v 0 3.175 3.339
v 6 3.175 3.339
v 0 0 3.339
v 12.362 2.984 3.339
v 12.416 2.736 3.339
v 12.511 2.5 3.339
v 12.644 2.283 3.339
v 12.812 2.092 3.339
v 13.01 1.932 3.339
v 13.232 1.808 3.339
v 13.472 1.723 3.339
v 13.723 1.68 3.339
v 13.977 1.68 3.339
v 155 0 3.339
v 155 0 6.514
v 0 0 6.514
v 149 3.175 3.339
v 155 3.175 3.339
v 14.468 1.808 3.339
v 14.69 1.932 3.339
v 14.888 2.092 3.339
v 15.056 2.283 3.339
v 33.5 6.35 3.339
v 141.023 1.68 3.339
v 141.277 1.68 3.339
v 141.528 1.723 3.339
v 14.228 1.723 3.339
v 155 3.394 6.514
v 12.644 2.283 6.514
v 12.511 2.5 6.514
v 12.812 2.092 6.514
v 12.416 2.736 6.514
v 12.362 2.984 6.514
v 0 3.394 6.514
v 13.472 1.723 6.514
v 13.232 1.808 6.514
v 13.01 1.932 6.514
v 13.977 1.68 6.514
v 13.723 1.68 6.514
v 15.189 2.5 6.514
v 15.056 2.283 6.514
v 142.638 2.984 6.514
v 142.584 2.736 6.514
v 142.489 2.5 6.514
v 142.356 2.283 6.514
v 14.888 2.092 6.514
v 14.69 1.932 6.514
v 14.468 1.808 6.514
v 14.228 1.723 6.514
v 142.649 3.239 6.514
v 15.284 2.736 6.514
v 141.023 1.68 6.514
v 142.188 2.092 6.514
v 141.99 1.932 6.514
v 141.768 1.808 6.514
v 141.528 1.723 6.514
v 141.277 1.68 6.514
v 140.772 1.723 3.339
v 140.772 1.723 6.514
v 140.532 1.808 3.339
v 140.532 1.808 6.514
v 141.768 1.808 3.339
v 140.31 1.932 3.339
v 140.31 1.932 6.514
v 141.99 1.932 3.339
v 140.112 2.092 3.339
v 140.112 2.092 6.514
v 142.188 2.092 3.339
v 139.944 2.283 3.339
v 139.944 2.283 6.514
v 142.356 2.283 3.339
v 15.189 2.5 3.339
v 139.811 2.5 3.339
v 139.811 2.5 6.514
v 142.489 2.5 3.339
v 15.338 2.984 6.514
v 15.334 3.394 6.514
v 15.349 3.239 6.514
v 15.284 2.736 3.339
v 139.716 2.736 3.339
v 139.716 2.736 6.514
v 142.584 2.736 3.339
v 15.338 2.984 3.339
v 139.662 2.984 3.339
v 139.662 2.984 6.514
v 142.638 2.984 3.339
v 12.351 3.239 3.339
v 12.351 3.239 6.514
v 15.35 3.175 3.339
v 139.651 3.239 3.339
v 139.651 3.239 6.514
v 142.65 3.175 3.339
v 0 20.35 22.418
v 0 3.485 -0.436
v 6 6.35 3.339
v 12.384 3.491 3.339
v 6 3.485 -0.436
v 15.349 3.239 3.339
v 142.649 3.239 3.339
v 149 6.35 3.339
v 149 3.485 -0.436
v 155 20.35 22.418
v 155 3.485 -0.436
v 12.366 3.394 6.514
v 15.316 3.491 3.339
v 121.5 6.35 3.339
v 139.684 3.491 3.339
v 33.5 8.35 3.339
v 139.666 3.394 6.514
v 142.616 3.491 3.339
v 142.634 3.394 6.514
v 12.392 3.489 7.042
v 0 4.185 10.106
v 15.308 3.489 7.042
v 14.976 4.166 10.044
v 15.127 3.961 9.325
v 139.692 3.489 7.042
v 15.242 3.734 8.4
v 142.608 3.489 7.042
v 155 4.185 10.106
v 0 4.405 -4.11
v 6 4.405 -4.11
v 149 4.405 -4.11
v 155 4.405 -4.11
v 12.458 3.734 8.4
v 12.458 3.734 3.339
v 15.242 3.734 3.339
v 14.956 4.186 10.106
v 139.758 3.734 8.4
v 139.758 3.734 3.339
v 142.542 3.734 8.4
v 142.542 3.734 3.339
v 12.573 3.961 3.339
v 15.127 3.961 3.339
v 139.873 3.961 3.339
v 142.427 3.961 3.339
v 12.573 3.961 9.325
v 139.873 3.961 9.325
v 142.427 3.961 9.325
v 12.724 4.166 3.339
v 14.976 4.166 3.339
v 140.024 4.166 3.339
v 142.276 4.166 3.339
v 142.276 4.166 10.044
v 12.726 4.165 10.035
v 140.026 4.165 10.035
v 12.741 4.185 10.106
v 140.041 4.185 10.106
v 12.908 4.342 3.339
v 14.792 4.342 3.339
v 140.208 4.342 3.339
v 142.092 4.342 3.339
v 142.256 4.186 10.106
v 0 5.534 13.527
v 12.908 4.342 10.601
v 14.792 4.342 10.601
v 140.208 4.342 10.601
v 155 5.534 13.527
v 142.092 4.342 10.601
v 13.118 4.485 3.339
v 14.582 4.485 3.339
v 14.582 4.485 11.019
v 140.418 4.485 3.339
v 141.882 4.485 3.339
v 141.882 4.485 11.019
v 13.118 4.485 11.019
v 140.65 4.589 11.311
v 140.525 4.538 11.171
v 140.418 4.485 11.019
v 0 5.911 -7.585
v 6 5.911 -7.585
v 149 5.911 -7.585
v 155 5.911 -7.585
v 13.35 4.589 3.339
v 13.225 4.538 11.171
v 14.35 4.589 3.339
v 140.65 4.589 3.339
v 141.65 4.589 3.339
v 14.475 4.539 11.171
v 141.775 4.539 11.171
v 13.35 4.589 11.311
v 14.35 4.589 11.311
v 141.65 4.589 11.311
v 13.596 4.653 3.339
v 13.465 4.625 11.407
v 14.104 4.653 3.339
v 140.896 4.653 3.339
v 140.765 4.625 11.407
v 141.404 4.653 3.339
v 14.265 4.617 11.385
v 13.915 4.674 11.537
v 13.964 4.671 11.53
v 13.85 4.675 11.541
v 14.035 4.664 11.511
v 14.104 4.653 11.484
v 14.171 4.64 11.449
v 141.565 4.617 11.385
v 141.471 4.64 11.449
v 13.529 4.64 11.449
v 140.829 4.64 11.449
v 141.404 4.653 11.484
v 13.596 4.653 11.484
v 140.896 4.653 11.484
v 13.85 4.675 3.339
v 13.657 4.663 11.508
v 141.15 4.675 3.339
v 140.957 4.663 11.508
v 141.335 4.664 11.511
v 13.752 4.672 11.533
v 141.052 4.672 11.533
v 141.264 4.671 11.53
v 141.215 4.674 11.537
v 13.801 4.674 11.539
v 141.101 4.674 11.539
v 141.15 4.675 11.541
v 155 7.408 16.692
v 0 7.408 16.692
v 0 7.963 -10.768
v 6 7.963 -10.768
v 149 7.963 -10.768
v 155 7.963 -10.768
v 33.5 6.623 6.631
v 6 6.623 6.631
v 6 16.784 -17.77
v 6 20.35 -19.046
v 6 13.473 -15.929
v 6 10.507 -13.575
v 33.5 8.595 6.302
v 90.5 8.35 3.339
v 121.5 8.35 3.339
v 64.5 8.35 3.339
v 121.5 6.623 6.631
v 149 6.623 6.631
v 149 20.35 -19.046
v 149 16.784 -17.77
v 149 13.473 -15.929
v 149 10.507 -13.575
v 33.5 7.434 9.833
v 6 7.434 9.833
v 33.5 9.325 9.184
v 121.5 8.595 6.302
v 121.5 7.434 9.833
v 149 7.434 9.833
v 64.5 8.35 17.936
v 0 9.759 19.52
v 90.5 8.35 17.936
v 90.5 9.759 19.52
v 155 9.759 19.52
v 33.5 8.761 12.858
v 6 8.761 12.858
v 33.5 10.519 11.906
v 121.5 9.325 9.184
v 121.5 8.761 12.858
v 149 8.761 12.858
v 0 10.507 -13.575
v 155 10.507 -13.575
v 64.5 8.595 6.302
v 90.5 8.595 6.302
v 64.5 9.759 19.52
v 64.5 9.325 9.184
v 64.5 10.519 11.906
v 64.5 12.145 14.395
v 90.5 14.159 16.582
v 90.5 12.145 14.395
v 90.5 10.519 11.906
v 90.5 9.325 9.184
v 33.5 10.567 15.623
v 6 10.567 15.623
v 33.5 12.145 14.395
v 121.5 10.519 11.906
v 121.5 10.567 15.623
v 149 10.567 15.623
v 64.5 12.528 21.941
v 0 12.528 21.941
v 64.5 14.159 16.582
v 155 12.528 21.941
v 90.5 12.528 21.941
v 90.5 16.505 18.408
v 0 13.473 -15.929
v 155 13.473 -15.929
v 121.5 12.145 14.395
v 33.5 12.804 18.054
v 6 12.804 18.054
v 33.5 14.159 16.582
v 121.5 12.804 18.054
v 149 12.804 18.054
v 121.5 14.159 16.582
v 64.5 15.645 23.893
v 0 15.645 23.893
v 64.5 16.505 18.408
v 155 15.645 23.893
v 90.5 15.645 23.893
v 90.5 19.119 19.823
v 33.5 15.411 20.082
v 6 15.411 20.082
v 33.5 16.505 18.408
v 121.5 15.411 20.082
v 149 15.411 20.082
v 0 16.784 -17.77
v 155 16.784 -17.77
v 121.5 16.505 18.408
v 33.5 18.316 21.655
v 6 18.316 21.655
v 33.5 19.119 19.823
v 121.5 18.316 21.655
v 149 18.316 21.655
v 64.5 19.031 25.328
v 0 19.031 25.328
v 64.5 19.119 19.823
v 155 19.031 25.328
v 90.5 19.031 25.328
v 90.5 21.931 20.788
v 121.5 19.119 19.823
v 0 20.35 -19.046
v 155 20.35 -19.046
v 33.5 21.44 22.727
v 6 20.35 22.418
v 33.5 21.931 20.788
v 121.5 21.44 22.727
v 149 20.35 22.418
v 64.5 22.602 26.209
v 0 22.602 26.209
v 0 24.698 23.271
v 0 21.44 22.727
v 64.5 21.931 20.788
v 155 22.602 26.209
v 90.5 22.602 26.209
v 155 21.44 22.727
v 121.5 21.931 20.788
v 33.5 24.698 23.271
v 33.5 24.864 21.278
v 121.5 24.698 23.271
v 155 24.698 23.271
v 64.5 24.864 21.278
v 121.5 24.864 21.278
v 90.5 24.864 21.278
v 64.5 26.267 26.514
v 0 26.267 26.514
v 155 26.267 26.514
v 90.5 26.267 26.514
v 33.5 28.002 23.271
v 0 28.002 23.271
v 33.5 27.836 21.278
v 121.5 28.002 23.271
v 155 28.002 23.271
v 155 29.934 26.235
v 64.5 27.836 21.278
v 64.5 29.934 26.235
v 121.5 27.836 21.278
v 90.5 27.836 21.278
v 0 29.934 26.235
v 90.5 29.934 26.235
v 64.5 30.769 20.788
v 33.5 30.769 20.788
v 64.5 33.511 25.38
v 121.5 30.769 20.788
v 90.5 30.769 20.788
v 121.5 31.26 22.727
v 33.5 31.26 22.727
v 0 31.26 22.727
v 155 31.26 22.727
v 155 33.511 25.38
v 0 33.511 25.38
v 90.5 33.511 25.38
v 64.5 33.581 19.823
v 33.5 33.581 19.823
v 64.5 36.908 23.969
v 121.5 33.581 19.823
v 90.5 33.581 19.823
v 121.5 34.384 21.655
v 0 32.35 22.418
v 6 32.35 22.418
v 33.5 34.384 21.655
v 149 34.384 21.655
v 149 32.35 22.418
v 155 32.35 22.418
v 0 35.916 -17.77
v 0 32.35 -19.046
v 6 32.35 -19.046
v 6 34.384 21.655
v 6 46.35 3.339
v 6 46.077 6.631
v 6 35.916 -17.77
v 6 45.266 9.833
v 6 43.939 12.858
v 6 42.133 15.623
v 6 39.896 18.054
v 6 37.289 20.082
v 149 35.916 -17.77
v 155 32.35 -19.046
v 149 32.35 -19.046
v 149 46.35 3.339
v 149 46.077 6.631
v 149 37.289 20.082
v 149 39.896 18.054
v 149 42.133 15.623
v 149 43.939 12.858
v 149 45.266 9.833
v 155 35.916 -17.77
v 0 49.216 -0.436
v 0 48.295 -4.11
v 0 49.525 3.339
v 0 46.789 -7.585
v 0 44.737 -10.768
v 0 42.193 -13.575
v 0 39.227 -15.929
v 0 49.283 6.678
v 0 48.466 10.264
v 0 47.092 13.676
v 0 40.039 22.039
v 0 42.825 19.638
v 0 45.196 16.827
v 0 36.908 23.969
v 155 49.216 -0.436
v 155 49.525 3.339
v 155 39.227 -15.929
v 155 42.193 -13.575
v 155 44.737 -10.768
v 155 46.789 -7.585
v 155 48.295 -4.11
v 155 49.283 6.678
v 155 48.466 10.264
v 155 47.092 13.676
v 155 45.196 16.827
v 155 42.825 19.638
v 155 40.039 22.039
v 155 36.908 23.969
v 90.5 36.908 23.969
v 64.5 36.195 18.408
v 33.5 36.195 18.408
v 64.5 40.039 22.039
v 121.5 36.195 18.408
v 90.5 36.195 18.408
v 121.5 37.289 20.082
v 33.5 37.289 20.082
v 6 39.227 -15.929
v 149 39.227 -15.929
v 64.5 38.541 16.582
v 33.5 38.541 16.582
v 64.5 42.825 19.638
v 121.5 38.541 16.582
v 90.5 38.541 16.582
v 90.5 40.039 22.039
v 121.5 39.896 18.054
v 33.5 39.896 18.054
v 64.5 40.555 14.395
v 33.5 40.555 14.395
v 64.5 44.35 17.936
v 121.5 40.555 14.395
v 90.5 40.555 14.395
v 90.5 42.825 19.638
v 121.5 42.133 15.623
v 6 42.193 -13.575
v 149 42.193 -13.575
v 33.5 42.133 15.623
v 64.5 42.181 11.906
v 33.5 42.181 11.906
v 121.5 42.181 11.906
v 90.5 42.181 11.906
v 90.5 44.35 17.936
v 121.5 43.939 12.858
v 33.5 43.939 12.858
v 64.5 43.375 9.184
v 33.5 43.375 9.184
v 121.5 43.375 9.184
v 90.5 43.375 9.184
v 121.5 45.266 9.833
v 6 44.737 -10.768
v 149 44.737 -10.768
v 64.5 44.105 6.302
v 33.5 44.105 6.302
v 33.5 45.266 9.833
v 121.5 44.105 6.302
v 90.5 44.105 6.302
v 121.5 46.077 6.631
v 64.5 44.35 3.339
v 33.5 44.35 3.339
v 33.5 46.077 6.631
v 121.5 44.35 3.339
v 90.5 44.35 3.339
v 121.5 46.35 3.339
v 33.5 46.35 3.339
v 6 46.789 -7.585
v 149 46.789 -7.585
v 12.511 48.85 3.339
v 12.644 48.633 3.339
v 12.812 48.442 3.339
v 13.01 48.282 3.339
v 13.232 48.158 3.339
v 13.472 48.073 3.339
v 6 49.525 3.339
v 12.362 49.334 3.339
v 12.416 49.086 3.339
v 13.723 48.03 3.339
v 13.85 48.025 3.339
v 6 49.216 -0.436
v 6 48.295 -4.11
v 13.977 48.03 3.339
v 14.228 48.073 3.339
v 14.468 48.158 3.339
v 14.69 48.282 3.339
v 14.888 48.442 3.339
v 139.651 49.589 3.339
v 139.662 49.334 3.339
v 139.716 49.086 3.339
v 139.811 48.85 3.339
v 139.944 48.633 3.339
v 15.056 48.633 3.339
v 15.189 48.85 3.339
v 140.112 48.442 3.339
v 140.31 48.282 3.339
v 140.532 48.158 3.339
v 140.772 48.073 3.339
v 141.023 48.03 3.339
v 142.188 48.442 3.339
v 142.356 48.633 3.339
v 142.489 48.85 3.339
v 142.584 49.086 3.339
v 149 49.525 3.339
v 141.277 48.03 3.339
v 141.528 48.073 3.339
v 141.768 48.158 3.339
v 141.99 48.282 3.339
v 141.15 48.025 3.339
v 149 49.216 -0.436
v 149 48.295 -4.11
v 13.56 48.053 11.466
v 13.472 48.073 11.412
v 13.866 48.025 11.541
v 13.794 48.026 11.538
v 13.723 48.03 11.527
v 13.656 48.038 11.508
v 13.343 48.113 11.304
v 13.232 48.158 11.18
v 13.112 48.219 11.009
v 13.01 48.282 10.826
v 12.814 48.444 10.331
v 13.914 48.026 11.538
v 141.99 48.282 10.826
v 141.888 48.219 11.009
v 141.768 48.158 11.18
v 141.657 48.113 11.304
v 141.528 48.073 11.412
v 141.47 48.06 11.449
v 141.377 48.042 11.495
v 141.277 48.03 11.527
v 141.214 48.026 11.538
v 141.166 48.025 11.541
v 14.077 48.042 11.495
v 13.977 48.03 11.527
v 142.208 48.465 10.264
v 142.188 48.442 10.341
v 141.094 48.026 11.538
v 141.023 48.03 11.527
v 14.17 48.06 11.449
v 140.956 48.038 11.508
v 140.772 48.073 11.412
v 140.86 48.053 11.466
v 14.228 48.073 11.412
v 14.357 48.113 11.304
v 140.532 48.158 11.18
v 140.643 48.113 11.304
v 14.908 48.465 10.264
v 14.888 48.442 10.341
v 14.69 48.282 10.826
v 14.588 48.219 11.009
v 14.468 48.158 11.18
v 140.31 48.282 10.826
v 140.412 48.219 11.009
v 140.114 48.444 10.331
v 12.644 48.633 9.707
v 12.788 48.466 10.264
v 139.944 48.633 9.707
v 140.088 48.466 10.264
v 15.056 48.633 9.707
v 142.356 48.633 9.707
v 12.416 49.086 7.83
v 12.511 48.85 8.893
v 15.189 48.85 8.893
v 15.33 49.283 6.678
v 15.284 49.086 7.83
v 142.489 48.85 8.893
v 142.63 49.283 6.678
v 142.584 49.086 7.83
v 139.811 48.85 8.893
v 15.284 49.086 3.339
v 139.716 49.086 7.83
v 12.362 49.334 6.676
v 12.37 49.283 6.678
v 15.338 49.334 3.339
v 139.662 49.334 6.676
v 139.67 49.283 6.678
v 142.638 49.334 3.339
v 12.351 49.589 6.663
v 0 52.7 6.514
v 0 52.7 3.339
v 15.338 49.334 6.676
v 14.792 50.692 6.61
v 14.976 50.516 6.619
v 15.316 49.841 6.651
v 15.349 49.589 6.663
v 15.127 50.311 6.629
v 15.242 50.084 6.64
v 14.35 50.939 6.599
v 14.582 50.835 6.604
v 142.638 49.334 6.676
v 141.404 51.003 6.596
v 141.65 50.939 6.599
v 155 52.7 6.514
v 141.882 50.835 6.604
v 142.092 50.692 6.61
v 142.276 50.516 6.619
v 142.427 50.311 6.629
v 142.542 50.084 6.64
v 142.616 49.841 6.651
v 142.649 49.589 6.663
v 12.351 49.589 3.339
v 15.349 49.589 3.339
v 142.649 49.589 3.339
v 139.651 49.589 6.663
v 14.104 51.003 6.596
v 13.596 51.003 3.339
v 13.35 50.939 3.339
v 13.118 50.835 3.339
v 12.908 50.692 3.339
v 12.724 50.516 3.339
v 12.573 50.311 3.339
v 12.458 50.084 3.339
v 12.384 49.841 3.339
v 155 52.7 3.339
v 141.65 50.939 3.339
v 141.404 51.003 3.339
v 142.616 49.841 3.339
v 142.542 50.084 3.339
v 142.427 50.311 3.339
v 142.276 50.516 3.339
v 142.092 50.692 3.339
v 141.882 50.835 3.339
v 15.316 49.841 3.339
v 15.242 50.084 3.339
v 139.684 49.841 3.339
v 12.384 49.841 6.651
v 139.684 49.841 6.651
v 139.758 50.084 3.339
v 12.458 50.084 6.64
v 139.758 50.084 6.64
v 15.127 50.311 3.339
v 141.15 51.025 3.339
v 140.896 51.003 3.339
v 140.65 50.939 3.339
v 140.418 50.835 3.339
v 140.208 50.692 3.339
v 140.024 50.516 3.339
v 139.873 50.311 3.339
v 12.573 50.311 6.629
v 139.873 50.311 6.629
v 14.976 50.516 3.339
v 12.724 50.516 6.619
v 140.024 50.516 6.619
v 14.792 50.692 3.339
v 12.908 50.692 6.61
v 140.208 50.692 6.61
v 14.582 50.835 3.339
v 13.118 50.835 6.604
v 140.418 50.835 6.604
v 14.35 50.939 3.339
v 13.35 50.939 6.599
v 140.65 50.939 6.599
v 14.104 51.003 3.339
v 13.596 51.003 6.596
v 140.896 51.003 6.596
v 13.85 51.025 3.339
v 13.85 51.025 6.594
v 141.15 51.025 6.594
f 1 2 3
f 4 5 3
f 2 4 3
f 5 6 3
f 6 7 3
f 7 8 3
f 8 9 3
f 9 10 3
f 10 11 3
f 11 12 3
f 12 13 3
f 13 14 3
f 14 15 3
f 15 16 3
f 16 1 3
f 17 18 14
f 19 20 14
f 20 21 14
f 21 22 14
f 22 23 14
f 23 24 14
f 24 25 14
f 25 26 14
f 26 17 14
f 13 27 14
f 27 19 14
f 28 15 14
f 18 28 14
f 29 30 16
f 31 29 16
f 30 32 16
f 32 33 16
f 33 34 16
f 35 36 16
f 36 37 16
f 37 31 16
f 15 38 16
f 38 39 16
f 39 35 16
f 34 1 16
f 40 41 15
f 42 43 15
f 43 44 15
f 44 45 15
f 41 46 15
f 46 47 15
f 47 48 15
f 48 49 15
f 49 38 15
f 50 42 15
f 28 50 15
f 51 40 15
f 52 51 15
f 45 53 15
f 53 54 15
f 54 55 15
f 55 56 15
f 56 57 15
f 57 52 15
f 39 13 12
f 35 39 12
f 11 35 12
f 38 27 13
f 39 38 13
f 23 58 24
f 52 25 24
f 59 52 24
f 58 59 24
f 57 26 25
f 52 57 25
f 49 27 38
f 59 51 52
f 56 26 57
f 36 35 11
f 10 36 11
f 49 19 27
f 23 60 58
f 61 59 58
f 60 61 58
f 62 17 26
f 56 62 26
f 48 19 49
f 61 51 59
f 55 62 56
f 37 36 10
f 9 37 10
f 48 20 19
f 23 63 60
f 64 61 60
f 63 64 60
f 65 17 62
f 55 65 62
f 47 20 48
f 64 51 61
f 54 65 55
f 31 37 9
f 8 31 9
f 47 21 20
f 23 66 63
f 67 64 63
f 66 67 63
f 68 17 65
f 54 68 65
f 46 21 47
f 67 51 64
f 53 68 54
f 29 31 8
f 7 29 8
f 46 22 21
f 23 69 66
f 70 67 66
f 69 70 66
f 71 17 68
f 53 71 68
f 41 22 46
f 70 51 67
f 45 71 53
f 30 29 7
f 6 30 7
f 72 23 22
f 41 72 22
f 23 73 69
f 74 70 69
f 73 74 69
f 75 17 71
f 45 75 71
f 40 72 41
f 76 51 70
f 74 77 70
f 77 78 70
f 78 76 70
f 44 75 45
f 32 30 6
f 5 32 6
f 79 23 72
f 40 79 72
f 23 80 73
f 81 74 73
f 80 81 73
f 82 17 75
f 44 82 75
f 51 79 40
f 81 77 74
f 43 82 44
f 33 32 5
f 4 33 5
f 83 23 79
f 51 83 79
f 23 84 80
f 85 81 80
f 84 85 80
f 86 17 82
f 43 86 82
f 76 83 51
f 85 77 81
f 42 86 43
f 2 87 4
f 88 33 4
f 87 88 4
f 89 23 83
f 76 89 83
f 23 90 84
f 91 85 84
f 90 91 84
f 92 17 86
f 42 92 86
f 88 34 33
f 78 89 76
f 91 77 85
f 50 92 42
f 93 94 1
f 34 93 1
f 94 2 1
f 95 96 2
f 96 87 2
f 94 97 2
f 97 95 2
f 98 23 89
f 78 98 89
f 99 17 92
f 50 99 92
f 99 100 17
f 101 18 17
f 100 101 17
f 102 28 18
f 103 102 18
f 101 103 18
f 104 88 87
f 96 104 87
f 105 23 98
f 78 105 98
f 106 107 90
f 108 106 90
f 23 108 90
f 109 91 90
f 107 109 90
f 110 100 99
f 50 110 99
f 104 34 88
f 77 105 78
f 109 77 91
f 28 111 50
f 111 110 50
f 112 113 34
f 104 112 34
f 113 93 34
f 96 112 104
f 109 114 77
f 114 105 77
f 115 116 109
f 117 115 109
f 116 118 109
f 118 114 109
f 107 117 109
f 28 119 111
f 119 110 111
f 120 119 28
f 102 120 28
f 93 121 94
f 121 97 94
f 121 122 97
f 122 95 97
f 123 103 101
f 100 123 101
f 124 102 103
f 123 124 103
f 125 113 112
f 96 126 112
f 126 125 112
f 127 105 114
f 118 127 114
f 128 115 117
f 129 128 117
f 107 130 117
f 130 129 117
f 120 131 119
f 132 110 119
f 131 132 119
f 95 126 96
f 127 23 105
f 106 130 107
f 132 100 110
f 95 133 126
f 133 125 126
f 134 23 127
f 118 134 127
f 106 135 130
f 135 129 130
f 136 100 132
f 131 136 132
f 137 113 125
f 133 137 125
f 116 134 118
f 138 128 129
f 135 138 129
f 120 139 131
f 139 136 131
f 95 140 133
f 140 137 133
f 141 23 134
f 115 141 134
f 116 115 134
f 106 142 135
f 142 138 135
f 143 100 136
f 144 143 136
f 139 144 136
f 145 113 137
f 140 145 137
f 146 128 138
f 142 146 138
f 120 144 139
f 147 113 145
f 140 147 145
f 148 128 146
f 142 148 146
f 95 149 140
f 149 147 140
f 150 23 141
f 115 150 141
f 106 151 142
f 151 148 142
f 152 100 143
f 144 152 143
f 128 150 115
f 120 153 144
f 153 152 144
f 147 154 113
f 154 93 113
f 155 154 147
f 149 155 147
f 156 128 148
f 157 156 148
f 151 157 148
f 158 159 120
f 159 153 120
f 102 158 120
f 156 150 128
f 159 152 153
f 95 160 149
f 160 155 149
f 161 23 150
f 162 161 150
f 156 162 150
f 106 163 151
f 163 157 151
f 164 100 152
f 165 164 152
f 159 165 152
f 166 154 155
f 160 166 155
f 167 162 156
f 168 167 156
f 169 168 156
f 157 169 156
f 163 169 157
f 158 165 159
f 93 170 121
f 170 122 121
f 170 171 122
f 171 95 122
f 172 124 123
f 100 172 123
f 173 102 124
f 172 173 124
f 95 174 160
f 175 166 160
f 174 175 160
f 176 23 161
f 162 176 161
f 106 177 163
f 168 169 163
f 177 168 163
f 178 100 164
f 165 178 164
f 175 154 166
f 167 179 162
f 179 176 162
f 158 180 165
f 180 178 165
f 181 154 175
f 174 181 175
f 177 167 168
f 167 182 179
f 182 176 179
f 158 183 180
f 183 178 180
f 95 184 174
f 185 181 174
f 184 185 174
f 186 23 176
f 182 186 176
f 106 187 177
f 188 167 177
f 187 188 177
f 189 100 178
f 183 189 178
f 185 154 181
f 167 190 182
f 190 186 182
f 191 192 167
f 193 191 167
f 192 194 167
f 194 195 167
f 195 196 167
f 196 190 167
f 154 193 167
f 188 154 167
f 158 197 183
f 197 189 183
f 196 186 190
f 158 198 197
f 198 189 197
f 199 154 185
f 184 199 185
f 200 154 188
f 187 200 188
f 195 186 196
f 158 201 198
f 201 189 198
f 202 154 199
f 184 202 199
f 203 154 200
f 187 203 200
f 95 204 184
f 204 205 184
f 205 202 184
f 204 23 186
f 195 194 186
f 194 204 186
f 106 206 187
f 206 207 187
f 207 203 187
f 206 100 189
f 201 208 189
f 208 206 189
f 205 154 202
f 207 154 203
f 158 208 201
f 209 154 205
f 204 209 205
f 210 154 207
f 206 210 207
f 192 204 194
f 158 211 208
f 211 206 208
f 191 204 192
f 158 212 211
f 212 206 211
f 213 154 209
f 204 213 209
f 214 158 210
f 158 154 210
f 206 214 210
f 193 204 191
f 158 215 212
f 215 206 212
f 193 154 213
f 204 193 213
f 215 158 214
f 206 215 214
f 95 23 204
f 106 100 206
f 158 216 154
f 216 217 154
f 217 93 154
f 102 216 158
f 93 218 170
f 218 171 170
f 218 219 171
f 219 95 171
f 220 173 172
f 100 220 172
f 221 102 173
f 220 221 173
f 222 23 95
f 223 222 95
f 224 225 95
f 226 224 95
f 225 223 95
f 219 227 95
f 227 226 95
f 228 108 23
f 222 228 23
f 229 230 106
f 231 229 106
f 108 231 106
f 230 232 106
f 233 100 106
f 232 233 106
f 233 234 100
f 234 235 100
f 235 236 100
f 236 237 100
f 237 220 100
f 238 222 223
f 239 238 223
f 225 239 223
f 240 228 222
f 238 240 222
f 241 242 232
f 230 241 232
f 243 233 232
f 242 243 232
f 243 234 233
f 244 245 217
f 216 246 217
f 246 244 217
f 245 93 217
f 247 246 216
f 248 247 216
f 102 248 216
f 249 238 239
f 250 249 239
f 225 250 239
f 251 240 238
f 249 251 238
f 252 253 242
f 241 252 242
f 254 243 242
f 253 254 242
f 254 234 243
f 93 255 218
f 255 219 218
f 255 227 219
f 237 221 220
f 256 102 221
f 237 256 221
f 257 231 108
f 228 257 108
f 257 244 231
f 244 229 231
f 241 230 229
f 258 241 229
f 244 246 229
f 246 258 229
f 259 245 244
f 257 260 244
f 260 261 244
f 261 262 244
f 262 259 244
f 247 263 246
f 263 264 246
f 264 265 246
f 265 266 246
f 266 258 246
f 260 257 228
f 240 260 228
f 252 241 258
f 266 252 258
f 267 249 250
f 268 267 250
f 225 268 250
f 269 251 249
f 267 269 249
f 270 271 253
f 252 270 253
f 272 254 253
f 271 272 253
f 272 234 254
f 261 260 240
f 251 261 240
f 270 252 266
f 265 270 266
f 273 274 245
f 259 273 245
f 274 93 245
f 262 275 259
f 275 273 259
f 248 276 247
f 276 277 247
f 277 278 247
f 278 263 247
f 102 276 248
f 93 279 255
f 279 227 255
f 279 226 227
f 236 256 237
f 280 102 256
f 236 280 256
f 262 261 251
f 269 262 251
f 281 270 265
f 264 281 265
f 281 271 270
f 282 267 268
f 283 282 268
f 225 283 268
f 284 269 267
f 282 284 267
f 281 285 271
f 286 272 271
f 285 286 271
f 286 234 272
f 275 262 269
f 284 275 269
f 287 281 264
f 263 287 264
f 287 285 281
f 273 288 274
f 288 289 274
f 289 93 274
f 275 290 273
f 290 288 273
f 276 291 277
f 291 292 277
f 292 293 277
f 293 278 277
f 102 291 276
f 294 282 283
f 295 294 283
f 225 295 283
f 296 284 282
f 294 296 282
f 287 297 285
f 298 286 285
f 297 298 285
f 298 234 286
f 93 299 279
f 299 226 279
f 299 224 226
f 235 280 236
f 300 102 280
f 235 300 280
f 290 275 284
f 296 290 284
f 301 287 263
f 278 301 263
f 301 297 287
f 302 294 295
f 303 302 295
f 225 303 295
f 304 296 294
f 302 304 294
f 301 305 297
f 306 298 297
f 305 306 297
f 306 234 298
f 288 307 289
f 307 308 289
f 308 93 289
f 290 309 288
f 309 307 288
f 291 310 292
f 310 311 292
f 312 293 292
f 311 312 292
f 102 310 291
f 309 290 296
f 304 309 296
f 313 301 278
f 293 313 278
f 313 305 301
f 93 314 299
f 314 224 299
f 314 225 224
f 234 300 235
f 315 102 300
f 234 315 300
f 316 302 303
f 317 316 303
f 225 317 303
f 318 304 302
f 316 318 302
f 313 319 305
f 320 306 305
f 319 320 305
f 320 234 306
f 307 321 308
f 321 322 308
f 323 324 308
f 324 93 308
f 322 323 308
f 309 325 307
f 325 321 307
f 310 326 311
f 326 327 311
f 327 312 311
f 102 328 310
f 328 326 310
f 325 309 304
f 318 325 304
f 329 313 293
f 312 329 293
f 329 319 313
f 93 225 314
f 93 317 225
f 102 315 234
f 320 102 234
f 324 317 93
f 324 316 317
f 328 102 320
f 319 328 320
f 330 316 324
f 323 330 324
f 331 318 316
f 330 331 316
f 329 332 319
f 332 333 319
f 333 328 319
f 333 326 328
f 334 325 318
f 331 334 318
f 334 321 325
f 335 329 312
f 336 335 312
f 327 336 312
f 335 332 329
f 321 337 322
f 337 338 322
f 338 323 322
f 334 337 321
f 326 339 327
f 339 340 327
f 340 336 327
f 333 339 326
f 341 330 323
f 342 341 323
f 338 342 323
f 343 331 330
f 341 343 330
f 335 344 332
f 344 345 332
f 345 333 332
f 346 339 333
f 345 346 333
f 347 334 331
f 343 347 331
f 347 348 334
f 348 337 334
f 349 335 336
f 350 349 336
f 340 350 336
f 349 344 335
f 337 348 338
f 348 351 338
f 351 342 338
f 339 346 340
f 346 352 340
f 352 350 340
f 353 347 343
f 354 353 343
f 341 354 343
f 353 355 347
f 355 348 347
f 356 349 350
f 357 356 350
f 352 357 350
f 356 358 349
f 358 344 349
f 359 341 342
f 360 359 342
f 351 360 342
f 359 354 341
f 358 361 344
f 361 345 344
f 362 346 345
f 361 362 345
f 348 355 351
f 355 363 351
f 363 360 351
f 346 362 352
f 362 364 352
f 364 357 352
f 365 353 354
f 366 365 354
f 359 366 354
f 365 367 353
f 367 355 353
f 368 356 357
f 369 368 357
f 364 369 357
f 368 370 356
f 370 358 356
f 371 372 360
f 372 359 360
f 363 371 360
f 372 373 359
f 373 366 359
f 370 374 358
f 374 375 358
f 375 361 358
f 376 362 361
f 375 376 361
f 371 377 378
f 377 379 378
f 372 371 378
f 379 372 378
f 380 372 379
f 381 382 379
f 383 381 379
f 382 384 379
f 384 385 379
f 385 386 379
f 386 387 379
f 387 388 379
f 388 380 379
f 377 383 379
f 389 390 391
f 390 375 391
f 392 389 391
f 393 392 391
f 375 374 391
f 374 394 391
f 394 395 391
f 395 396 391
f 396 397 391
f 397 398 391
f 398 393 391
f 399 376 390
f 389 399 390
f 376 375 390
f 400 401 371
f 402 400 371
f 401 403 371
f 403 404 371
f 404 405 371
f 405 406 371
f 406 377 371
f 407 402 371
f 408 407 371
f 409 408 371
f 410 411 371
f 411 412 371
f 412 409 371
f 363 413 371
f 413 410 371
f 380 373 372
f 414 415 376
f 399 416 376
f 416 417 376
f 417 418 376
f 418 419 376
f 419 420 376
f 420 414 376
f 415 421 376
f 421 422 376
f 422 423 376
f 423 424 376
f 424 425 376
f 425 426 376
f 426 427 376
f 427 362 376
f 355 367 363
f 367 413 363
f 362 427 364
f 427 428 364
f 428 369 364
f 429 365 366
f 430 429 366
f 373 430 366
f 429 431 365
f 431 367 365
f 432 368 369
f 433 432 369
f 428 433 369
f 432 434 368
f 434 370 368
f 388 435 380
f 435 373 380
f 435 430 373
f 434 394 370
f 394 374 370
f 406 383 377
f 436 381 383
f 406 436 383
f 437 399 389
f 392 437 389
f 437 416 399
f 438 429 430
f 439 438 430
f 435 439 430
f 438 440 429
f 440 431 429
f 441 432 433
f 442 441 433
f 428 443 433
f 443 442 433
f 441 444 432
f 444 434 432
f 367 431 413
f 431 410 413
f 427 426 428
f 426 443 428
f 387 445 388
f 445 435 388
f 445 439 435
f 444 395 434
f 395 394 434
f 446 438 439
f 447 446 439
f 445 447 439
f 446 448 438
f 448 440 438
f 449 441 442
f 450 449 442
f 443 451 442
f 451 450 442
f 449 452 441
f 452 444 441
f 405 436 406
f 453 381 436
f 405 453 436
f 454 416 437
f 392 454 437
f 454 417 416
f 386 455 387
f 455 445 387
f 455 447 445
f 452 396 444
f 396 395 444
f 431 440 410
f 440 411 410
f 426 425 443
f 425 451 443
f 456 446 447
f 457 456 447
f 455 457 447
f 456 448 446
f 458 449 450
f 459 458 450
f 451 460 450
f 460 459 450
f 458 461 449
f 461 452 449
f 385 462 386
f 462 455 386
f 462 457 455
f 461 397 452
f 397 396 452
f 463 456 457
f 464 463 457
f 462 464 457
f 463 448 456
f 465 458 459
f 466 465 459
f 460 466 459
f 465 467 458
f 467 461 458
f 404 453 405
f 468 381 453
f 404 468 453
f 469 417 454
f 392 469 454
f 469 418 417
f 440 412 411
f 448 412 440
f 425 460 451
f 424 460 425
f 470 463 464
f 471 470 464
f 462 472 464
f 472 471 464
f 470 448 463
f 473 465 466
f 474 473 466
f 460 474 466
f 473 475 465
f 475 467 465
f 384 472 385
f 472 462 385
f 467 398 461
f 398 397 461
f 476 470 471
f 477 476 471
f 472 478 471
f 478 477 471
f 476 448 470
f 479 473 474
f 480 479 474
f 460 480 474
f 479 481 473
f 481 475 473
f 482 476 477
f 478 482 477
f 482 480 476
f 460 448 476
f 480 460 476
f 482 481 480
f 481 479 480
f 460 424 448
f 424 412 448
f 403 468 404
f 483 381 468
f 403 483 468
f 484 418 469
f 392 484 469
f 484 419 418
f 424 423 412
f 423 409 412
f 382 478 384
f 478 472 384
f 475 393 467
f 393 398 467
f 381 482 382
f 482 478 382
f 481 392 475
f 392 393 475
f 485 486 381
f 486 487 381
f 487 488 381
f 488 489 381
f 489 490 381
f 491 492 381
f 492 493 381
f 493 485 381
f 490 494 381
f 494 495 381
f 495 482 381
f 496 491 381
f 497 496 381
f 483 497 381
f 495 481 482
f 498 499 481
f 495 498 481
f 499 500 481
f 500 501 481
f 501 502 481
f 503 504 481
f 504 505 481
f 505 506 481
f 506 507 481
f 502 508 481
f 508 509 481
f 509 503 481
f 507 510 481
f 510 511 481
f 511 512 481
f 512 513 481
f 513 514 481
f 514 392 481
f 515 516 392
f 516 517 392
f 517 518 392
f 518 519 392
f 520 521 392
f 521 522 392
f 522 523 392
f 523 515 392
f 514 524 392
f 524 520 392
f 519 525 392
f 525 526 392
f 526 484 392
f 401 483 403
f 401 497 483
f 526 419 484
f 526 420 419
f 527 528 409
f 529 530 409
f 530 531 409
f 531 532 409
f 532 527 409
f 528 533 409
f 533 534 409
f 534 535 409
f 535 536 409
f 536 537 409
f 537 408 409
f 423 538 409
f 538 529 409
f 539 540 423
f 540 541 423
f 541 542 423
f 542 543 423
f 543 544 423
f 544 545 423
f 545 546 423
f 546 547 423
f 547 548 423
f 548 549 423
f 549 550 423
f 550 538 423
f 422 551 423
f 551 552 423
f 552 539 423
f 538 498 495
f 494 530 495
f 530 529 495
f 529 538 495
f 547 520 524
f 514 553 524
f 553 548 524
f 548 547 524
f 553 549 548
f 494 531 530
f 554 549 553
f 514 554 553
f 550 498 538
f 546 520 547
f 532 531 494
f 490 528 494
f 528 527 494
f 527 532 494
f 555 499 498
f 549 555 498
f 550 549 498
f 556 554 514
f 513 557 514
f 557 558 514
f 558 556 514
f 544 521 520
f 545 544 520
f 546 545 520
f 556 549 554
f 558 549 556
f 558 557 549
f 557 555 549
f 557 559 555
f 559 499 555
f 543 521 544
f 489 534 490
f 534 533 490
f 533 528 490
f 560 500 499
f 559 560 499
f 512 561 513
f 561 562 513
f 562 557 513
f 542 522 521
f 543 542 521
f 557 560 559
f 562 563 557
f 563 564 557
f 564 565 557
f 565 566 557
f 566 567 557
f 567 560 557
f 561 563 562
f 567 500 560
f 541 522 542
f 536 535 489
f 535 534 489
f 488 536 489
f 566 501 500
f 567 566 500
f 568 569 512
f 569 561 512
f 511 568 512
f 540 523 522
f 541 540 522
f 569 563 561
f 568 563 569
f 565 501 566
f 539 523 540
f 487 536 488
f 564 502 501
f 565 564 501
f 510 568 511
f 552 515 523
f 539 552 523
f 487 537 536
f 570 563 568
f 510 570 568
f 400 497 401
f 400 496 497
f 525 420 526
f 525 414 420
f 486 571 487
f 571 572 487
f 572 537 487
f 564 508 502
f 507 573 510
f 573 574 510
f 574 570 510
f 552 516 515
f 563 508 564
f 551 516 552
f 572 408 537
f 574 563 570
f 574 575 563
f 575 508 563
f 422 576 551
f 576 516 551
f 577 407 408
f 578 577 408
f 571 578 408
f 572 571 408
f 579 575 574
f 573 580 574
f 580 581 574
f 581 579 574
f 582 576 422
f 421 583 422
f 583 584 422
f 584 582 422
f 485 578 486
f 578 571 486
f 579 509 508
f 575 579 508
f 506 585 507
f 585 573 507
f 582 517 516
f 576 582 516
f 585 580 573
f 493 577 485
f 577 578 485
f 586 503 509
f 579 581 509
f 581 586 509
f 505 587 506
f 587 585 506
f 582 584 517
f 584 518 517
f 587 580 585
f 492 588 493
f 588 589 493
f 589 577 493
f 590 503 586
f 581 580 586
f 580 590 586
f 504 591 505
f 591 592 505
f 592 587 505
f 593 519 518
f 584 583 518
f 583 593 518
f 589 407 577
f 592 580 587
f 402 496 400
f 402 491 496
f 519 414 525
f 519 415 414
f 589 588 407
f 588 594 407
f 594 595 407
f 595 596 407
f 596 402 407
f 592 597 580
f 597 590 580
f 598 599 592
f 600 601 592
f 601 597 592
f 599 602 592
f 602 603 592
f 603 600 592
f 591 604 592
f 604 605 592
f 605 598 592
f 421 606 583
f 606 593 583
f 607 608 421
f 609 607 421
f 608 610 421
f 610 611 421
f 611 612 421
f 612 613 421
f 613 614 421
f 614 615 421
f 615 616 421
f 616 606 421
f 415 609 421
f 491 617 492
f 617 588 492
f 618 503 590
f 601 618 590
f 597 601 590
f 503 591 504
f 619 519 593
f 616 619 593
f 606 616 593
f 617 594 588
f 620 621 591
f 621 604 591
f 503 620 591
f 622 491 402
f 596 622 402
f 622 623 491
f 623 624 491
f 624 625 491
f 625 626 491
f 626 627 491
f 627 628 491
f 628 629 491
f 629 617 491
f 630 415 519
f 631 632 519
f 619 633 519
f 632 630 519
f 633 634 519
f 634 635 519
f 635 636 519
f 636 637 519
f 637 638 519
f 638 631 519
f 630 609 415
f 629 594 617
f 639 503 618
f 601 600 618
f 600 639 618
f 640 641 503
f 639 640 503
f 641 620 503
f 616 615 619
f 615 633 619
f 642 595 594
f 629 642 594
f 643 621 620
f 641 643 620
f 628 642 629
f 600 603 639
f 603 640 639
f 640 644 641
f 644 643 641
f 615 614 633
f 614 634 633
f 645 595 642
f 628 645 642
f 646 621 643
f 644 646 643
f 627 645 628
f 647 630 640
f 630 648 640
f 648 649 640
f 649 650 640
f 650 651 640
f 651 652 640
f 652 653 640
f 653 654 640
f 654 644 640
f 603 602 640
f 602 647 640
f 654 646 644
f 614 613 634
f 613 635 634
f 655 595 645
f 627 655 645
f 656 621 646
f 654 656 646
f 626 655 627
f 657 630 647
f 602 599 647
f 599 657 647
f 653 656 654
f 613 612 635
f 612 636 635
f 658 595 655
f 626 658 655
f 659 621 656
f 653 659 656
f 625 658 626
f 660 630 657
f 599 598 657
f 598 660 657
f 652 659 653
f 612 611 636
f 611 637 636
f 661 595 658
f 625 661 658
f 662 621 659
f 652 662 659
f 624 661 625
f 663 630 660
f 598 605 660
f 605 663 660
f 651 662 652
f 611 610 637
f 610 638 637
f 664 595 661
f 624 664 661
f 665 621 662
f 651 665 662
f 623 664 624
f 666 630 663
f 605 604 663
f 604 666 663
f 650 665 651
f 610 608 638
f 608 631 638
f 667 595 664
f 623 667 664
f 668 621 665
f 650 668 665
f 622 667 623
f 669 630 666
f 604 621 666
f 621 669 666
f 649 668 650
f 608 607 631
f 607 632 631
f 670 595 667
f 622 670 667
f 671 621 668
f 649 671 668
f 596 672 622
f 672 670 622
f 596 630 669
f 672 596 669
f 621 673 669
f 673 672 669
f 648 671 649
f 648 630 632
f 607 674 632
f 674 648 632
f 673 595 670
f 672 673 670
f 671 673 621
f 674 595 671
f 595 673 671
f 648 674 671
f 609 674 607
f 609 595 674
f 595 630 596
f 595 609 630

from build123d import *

# Parameters (mm, degrees)
BOSS_EXTRUDE1_DEPTH     = 155
CUT_EXTRUDE1_DEPTH      = 33.5
CUT_EXTRUDE2_START      = -33.5
CUT_EXTRUDE2_DEPTH      = 33.5
CUT_EXTRUDE3_DEPTH      = 166.346214426
CUT_EXTRUDE3_DEPTH_BACK = 166.346214426
SKETCH4_W               = 26
SKETCH4_H               = 36
CUT_EXTRUDE4_DEPTH      = 166.346214426
CUT_EXTRUDE4_DEPTH_BACK = 166.346214426
SKETCH5_R               = 1.5
BOSS_EXTRUDE2_START     = -6
BOSS_EXTRUDE2_DEPTH     = 6


with BuildPart() as part:
    # Sketch1 → Boss-Extrude1 (new body)
    with BuildSketch(Plane(origin=(0, 0, 0), x_dir=(0, 0, -1), z_dir=(1, 0, 0))):
        with BuildLine():
            Line((-6.678129735, 49.283191466), (-6.514064867, 52.7))
            Line((-6.514064867, 52.7), (-3.339064867, 52.7))
            Line((-3.339064867, 52.7), (-3.339064867, 44.35))
            ThreePointArc((-3.339064867, 44.35), (-21.339064867, 26.35), (-3.339064867, 8.35))
            Line((-3.339064867, 8.35), (-3.339064867, 0))
            Line((-3.339064867, 0), (-6.514064867, 0))
            Line((-6.514064867, 0), (-6.514064867, 3.393519434))
            ThreePointArc((-6.514064867, 3.393519434), (-26.513916757, 26.267145213), (-6.678129735, 49.283191466))
        make_face()
    extrude(amount=BOSS_EXTRUDE1_DEPTH)

    # Sketch2 → Cut-Extrude1 (cut)
    with BuildSketch(Plane(origin=(155, 0, 0), x_dir=(0, 0, -1), z_dir=(1, 0, 0))):
        with BuildLine():
            Line((-3.339064867, 46.35), (-3.339064867, 6.35))
            ThreePointArc((-3.339064867, 6.35), (-23.339064867, 26.35), (-3.339064867, 46.35))
        make_face()
    extrude(amount=-CUT_EXTRUDE1_DEPTH, mode=Mode.SUBTRACT)

    # Sketch3 → Cut-Extrude2 (cut)
    with BuildSketch(Plane.ZY.offset(CUT_EXTRUDE2_START)):
        with BuildLine():
            Line((3.339064867, 46.35), (3.339064867, 6.35))
            ThreePointArc((3.339064867, 6.35), (23.339064867, 26.35), (3.339064867, 46.35))
        make_face()
    extrude(amount=CUT_EXTRUDE2_DEPTH, mode=Mode.SUBTRACT)

    # Sketch4 → Cut-Extrude3 (cut, two sides: drawn at the far end of the back side and taken through both)
    with BuildSketch(Plane(origin=(0, 0, 3.339064867), x_dir=(-1, 0, 0), z_dir=(0, 0, -1)).offset(-CUT_EXTRUDE3_DEPTH_BACK)):
        with Locations((-77.5, 26.35)):
            Rectangle(SKETCH4_W, SKETCH4_H)
    extrude(amount=CUT_EXTRUDE3_DEPTH + CUT_EXTRUDE3_DEPTH_BACK, mode=Mode.SUBTRACT)

    # Sketch5 → Cut-Extrude4 (cut, two sides: drawn at the far end of the back side and taken through both)
    with BuildSketch(Plane(origin=(0, 0, 3.339064867), x_dir=(-1, 0, 0), z_dir=(0, 0, -1)).offset(-CUT_EXTRUDE4_DEPTH_BACK)):
        with Locations((-141.15, 49.525)):
            Circle(SKETCH5_R)
        with Locations((-141.15, 3.175)):
            Circle(SKETCH5_R)
        with Locations((-13.85, 49.525)):
            Circle(SKETCH5_R)
        with Locations((-13.85, 3.175)):
            Circle(SKETCH5_R)
    extrude(amount=CUT_EXTRUDE4_DEPTH + CUT_EXTRUDE4_DEPTH_BACK, mode=Mode.SUBTRACT)

    # Sketch6 → Boss-Extrude2 (add)
    with BuildSketch(Plane(origin=(155, 0, 0), x_dir=(0, 0, -1), z_dir=(1, 0, 0)).offset(BOSS_EXTRUDE2_START)):
        with BuildLine():
            Line((-25.72389511, 32.35), (19.045765375, 32.35))
            ThreePointArc((19.045765375, 32.35), (-3.339064867, 49.525), (-25.72389511, 32.35))
        make_face()
        with BuildLine():
            Line((-25.72389511, 20.35), (19.045765375, 20.35))
            ThreePointArc((19.045765375, 20.35), (-3.339064867, 3.175), (-25.72389511, 20.35))
        make_face()
    boss_extrude2 = extrude(amount=BOSS_EXTRUDE2_DEPTH)

    # Mirror1: Boss-Extrude2 across plane
    add(boss_extrude2.mirror(Plane(origin=(77.5, 0, 0), x_dir=(0, 0, 1), z_dir=(1, 0, 0))))


solid = part.part
